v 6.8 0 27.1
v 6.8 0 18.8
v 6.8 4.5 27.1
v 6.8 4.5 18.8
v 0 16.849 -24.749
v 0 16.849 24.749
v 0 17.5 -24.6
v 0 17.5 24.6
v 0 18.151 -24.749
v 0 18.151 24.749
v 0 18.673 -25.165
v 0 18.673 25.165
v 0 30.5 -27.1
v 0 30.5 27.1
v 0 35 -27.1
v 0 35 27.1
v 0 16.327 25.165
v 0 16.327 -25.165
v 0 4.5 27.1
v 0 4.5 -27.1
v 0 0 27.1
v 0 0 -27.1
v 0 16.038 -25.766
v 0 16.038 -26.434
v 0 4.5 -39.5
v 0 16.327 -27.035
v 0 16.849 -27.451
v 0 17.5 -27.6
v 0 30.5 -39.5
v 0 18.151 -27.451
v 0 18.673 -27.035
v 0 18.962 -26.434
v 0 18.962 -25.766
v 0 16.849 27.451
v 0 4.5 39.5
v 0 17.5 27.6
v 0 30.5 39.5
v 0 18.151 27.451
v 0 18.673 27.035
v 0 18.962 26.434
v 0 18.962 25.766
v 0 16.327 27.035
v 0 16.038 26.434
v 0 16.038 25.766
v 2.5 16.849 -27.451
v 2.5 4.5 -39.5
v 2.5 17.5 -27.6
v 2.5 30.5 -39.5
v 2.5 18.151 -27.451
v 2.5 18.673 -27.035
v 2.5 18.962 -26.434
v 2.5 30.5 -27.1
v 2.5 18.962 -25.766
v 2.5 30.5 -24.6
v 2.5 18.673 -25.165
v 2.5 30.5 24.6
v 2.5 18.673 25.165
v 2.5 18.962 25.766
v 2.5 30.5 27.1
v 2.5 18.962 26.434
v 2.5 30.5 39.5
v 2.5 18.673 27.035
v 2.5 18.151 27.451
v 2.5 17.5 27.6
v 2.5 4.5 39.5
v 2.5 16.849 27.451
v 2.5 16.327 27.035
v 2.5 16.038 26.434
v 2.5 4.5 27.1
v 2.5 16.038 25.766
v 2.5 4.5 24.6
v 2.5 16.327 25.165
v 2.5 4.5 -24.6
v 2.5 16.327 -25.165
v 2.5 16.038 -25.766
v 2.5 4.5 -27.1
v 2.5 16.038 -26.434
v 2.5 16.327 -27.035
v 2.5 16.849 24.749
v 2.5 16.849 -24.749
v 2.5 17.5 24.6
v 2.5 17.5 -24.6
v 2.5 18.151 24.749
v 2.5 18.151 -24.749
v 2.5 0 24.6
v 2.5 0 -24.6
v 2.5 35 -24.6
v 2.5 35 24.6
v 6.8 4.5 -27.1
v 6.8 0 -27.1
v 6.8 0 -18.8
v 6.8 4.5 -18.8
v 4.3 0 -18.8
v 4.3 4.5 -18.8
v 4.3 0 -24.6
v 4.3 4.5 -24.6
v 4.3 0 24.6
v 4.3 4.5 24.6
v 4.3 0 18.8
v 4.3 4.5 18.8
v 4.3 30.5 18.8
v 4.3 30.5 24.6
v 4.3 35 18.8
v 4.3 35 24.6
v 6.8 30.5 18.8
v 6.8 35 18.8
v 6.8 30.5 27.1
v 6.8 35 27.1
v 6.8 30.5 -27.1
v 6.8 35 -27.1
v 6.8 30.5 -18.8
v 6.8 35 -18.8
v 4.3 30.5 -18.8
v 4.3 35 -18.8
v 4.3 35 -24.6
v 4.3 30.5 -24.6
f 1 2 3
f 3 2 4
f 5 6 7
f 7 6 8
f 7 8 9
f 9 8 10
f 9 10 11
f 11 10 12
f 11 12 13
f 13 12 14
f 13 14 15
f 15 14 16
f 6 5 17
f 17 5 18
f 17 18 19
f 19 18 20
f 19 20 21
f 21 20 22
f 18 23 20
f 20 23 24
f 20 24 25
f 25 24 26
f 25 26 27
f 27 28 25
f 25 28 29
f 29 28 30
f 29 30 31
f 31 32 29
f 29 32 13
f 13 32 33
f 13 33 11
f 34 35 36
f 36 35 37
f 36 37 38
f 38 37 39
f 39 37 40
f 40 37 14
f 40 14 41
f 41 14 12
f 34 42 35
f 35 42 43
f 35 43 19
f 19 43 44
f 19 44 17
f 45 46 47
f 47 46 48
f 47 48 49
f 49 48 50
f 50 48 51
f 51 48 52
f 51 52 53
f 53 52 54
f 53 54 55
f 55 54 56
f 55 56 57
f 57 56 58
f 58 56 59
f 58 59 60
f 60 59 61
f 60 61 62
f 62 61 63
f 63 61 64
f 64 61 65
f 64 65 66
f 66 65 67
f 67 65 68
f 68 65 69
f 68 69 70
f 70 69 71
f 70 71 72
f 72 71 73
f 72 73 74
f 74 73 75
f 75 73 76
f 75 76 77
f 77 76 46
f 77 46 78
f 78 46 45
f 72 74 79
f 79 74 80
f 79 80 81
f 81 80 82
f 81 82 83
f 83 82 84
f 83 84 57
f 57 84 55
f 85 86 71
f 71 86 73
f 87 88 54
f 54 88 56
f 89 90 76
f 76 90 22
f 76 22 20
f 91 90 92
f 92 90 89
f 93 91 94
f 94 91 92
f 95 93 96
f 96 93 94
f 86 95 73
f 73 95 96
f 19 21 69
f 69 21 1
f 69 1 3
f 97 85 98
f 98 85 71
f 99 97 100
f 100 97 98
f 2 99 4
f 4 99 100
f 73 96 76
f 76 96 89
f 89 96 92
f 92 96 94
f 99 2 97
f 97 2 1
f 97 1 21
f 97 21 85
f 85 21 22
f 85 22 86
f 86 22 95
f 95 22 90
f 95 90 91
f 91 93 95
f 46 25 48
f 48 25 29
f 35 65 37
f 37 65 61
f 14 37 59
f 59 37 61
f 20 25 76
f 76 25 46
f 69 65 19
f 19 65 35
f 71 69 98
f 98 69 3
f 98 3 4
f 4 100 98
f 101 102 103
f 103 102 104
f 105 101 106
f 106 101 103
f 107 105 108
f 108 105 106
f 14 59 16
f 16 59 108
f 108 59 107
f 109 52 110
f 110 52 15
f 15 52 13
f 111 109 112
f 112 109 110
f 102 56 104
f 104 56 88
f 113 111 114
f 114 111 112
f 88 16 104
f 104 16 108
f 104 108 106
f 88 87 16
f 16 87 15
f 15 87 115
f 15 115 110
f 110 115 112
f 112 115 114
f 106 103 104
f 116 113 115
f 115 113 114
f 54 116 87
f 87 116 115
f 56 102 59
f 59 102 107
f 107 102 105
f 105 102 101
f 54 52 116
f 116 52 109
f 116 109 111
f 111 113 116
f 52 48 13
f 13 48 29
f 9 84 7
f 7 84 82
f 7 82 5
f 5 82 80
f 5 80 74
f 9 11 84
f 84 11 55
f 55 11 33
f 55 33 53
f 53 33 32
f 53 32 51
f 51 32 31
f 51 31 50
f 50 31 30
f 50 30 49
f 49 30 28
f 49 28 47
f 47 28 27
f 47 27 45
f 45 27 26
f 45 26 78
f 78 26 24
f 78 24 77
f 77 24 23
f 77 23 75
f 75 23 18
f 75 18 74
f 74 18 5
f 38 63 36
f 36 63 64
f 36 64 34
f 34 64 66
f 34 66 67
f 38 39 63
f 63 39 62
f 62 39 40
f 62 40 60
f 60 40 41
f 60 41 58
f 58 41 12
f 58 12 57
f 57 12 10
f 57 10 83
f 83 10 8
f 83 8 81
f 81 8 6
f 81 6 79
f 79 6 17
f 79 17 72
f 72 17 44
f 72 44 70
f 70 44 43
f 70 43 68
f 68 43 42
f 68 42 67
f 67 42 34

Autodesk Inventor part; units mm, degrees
ref_plane "YZ Plane" through (0, 0, 0) normal (1, 0, 0) x (0, 1, 0)
ref_plane "XZ Plane" through (0, 0, 0) normal (0, 1, 0) x (-1, 0, 0)
ref_plane "XY Plane" through (0, 0, 0) normal (0, 0, 1) x (1, 0, 0)
sketch "Sketch1" plane through (0, 0, 0) normal (0, 1, 0) x (-1, 0, 0)
  line L0 (0, 27.1) -> (0, -27.1)
  line L1 (0, 27.1) -> (-6.8, 27.1)
  line L2 (-6.8, 27.1) -> (-6.8, 18.8)
  line L3 (-6.8, 18.8) -> (-4.3, 18.8)
  line L4 (-4.3, 18.8) -> (-4.3, 24.6)
  line L5 (-4.3, 24.6) -> (-2.5, 24.6)
  line L6 (-2.5, 24.6) -> (-2.5, 0)
  line L7 (0, -27.1) -> (-6.8, -27.1)
  line L8 (-6.8, -27.1) -> (-6.8, -18.8)
  line L9 (-6.8, -18.8) -> (-4.3, -18.8)
  line L10 (-4.3, -18.8) -> (-4.3, -24.6)
  line L11 (-4.3, -24.6) -> (-2.5, -24.6)
  line L12 (-2.5, -24.6) -> (-2.5, 0)
  point P0 (0, 0)
  dimension "d0" = 54.2
  dimension "d1" = 6.8
  dimension "d2" = 8.3
  dimension "d3" = 2.5
  dimension "d4" = 5.8
  dimension "d5" = 1.8
  dimension "d6" = 8.3
  dimension "d7" = 5.8
extrude "Extrusion1" add sketch "Sketch1" along normal blind 4.5
sketch "Sketch2" plane through (0, 4.5, 0) normal (0, 1, 0) x (1, 0, 0)
  line L0 (2.5, -24.6) -> (2.5, 24.6) projected
  line L1 (2.5, 0) -> (2.5, 39.5)
  line L2 (2.5, 39.5) -> (0, 39.5)
  line L3 (0, 39.5) -> (0, 0)
  line L4 (0, 0) -> (0, -39.5)
  line L5 (0, 27.1) -> (0, -27.1) projected
  line L6 (0, -39.5) -> (2.5, -39.5)
  line L7 (2.5, -39.5) -> (2.5, 0)
  dimension "d10" = 39.5
  dimension "d11" = 39.5
extrude "Extrusion2" add sketch "Sketch2" along normal blind 26
sketch "Sketch3" plane through (0, 30.5, 0) normal (0, 1, 0) x (1, 0, 0)
  line L0 (2.5, -24.6) -> (2.5, 24.6) projected
  line L1 (2.5, 0) -> (2.5, 24.6558)
  line L2 (0, 27.1) -> (0, -27.1) projected
  line L3 (4.3, -24.6) -> (2.5, -24.6) projected
  line L4 (6.8, -18.8) -> (4.3, -18.8) projected
  line L5 (4.3, -24.6) -> (4.3, -18.8)
  line L6 (4.3, -18.8) -> (6.8, -18.8)
  line L7 (6.8, -18.8) -> (6.8, -27.1)
  line L8 (6.8, -27.1) -> (2.5, -27.1)
  line L9 (2.5, 0) -> (2.5, 24.6558)
  line L10 (2.5, 24.6) -> (4.3, 24.6) projected
  line L11 (4.3, 18.8) -> (6.8, 18.8) projected
  line L12 (4.3, 24.6) -> (4.3, 18.8)
  line L13 (4.3, 18.8) -> (6.8, 18.8)
  line L14 (6.8, 18.8) -> (6.8, 27.1)
  line L15 (6.8, 27.1) -> (0, 27.1)
  line L16 (0, 27.1) -> (0, -27.1)
  line L17 (6.8, -27.1) -> (0, -27.1)
  line L18 (4.3, -24.6) -> (2.5, -24.6)
  point P0 (0, 0)
extrude "Extrusion3" add sketch "Sketch3" along normal blind 4.5
sketch "Sketch4" plane through (2.5, 0, 24.6) normal (1, 0, 0) x (0, 0, -1)
  line L0 (64.1, 4.5) -> (64.1, 30.5) projected
  line L1 (64.1, 17.5) -> (50.7, 17.5)
  circle A0 centre (50.7, 17.5) radius 1.5
  line L2 (-14.9, 4.5) -> (-14.9, 30.5) projected
  line L3 (-14.9, 17.5) -> (-1.5, 17.5)
  circle A1 centre (-1.5, 17.5) radius 1.5
  point P0 (24.6, 0)
  dimension "d16" = 13.4
  dimension "d17" = 3
  dimension "d18" = 13.4
  dimension "d19" = 3
extrude "Extrusion4" cut sketch "Sketch4" against normal blind 4.5
properties part number "cam_holder2_conv"
